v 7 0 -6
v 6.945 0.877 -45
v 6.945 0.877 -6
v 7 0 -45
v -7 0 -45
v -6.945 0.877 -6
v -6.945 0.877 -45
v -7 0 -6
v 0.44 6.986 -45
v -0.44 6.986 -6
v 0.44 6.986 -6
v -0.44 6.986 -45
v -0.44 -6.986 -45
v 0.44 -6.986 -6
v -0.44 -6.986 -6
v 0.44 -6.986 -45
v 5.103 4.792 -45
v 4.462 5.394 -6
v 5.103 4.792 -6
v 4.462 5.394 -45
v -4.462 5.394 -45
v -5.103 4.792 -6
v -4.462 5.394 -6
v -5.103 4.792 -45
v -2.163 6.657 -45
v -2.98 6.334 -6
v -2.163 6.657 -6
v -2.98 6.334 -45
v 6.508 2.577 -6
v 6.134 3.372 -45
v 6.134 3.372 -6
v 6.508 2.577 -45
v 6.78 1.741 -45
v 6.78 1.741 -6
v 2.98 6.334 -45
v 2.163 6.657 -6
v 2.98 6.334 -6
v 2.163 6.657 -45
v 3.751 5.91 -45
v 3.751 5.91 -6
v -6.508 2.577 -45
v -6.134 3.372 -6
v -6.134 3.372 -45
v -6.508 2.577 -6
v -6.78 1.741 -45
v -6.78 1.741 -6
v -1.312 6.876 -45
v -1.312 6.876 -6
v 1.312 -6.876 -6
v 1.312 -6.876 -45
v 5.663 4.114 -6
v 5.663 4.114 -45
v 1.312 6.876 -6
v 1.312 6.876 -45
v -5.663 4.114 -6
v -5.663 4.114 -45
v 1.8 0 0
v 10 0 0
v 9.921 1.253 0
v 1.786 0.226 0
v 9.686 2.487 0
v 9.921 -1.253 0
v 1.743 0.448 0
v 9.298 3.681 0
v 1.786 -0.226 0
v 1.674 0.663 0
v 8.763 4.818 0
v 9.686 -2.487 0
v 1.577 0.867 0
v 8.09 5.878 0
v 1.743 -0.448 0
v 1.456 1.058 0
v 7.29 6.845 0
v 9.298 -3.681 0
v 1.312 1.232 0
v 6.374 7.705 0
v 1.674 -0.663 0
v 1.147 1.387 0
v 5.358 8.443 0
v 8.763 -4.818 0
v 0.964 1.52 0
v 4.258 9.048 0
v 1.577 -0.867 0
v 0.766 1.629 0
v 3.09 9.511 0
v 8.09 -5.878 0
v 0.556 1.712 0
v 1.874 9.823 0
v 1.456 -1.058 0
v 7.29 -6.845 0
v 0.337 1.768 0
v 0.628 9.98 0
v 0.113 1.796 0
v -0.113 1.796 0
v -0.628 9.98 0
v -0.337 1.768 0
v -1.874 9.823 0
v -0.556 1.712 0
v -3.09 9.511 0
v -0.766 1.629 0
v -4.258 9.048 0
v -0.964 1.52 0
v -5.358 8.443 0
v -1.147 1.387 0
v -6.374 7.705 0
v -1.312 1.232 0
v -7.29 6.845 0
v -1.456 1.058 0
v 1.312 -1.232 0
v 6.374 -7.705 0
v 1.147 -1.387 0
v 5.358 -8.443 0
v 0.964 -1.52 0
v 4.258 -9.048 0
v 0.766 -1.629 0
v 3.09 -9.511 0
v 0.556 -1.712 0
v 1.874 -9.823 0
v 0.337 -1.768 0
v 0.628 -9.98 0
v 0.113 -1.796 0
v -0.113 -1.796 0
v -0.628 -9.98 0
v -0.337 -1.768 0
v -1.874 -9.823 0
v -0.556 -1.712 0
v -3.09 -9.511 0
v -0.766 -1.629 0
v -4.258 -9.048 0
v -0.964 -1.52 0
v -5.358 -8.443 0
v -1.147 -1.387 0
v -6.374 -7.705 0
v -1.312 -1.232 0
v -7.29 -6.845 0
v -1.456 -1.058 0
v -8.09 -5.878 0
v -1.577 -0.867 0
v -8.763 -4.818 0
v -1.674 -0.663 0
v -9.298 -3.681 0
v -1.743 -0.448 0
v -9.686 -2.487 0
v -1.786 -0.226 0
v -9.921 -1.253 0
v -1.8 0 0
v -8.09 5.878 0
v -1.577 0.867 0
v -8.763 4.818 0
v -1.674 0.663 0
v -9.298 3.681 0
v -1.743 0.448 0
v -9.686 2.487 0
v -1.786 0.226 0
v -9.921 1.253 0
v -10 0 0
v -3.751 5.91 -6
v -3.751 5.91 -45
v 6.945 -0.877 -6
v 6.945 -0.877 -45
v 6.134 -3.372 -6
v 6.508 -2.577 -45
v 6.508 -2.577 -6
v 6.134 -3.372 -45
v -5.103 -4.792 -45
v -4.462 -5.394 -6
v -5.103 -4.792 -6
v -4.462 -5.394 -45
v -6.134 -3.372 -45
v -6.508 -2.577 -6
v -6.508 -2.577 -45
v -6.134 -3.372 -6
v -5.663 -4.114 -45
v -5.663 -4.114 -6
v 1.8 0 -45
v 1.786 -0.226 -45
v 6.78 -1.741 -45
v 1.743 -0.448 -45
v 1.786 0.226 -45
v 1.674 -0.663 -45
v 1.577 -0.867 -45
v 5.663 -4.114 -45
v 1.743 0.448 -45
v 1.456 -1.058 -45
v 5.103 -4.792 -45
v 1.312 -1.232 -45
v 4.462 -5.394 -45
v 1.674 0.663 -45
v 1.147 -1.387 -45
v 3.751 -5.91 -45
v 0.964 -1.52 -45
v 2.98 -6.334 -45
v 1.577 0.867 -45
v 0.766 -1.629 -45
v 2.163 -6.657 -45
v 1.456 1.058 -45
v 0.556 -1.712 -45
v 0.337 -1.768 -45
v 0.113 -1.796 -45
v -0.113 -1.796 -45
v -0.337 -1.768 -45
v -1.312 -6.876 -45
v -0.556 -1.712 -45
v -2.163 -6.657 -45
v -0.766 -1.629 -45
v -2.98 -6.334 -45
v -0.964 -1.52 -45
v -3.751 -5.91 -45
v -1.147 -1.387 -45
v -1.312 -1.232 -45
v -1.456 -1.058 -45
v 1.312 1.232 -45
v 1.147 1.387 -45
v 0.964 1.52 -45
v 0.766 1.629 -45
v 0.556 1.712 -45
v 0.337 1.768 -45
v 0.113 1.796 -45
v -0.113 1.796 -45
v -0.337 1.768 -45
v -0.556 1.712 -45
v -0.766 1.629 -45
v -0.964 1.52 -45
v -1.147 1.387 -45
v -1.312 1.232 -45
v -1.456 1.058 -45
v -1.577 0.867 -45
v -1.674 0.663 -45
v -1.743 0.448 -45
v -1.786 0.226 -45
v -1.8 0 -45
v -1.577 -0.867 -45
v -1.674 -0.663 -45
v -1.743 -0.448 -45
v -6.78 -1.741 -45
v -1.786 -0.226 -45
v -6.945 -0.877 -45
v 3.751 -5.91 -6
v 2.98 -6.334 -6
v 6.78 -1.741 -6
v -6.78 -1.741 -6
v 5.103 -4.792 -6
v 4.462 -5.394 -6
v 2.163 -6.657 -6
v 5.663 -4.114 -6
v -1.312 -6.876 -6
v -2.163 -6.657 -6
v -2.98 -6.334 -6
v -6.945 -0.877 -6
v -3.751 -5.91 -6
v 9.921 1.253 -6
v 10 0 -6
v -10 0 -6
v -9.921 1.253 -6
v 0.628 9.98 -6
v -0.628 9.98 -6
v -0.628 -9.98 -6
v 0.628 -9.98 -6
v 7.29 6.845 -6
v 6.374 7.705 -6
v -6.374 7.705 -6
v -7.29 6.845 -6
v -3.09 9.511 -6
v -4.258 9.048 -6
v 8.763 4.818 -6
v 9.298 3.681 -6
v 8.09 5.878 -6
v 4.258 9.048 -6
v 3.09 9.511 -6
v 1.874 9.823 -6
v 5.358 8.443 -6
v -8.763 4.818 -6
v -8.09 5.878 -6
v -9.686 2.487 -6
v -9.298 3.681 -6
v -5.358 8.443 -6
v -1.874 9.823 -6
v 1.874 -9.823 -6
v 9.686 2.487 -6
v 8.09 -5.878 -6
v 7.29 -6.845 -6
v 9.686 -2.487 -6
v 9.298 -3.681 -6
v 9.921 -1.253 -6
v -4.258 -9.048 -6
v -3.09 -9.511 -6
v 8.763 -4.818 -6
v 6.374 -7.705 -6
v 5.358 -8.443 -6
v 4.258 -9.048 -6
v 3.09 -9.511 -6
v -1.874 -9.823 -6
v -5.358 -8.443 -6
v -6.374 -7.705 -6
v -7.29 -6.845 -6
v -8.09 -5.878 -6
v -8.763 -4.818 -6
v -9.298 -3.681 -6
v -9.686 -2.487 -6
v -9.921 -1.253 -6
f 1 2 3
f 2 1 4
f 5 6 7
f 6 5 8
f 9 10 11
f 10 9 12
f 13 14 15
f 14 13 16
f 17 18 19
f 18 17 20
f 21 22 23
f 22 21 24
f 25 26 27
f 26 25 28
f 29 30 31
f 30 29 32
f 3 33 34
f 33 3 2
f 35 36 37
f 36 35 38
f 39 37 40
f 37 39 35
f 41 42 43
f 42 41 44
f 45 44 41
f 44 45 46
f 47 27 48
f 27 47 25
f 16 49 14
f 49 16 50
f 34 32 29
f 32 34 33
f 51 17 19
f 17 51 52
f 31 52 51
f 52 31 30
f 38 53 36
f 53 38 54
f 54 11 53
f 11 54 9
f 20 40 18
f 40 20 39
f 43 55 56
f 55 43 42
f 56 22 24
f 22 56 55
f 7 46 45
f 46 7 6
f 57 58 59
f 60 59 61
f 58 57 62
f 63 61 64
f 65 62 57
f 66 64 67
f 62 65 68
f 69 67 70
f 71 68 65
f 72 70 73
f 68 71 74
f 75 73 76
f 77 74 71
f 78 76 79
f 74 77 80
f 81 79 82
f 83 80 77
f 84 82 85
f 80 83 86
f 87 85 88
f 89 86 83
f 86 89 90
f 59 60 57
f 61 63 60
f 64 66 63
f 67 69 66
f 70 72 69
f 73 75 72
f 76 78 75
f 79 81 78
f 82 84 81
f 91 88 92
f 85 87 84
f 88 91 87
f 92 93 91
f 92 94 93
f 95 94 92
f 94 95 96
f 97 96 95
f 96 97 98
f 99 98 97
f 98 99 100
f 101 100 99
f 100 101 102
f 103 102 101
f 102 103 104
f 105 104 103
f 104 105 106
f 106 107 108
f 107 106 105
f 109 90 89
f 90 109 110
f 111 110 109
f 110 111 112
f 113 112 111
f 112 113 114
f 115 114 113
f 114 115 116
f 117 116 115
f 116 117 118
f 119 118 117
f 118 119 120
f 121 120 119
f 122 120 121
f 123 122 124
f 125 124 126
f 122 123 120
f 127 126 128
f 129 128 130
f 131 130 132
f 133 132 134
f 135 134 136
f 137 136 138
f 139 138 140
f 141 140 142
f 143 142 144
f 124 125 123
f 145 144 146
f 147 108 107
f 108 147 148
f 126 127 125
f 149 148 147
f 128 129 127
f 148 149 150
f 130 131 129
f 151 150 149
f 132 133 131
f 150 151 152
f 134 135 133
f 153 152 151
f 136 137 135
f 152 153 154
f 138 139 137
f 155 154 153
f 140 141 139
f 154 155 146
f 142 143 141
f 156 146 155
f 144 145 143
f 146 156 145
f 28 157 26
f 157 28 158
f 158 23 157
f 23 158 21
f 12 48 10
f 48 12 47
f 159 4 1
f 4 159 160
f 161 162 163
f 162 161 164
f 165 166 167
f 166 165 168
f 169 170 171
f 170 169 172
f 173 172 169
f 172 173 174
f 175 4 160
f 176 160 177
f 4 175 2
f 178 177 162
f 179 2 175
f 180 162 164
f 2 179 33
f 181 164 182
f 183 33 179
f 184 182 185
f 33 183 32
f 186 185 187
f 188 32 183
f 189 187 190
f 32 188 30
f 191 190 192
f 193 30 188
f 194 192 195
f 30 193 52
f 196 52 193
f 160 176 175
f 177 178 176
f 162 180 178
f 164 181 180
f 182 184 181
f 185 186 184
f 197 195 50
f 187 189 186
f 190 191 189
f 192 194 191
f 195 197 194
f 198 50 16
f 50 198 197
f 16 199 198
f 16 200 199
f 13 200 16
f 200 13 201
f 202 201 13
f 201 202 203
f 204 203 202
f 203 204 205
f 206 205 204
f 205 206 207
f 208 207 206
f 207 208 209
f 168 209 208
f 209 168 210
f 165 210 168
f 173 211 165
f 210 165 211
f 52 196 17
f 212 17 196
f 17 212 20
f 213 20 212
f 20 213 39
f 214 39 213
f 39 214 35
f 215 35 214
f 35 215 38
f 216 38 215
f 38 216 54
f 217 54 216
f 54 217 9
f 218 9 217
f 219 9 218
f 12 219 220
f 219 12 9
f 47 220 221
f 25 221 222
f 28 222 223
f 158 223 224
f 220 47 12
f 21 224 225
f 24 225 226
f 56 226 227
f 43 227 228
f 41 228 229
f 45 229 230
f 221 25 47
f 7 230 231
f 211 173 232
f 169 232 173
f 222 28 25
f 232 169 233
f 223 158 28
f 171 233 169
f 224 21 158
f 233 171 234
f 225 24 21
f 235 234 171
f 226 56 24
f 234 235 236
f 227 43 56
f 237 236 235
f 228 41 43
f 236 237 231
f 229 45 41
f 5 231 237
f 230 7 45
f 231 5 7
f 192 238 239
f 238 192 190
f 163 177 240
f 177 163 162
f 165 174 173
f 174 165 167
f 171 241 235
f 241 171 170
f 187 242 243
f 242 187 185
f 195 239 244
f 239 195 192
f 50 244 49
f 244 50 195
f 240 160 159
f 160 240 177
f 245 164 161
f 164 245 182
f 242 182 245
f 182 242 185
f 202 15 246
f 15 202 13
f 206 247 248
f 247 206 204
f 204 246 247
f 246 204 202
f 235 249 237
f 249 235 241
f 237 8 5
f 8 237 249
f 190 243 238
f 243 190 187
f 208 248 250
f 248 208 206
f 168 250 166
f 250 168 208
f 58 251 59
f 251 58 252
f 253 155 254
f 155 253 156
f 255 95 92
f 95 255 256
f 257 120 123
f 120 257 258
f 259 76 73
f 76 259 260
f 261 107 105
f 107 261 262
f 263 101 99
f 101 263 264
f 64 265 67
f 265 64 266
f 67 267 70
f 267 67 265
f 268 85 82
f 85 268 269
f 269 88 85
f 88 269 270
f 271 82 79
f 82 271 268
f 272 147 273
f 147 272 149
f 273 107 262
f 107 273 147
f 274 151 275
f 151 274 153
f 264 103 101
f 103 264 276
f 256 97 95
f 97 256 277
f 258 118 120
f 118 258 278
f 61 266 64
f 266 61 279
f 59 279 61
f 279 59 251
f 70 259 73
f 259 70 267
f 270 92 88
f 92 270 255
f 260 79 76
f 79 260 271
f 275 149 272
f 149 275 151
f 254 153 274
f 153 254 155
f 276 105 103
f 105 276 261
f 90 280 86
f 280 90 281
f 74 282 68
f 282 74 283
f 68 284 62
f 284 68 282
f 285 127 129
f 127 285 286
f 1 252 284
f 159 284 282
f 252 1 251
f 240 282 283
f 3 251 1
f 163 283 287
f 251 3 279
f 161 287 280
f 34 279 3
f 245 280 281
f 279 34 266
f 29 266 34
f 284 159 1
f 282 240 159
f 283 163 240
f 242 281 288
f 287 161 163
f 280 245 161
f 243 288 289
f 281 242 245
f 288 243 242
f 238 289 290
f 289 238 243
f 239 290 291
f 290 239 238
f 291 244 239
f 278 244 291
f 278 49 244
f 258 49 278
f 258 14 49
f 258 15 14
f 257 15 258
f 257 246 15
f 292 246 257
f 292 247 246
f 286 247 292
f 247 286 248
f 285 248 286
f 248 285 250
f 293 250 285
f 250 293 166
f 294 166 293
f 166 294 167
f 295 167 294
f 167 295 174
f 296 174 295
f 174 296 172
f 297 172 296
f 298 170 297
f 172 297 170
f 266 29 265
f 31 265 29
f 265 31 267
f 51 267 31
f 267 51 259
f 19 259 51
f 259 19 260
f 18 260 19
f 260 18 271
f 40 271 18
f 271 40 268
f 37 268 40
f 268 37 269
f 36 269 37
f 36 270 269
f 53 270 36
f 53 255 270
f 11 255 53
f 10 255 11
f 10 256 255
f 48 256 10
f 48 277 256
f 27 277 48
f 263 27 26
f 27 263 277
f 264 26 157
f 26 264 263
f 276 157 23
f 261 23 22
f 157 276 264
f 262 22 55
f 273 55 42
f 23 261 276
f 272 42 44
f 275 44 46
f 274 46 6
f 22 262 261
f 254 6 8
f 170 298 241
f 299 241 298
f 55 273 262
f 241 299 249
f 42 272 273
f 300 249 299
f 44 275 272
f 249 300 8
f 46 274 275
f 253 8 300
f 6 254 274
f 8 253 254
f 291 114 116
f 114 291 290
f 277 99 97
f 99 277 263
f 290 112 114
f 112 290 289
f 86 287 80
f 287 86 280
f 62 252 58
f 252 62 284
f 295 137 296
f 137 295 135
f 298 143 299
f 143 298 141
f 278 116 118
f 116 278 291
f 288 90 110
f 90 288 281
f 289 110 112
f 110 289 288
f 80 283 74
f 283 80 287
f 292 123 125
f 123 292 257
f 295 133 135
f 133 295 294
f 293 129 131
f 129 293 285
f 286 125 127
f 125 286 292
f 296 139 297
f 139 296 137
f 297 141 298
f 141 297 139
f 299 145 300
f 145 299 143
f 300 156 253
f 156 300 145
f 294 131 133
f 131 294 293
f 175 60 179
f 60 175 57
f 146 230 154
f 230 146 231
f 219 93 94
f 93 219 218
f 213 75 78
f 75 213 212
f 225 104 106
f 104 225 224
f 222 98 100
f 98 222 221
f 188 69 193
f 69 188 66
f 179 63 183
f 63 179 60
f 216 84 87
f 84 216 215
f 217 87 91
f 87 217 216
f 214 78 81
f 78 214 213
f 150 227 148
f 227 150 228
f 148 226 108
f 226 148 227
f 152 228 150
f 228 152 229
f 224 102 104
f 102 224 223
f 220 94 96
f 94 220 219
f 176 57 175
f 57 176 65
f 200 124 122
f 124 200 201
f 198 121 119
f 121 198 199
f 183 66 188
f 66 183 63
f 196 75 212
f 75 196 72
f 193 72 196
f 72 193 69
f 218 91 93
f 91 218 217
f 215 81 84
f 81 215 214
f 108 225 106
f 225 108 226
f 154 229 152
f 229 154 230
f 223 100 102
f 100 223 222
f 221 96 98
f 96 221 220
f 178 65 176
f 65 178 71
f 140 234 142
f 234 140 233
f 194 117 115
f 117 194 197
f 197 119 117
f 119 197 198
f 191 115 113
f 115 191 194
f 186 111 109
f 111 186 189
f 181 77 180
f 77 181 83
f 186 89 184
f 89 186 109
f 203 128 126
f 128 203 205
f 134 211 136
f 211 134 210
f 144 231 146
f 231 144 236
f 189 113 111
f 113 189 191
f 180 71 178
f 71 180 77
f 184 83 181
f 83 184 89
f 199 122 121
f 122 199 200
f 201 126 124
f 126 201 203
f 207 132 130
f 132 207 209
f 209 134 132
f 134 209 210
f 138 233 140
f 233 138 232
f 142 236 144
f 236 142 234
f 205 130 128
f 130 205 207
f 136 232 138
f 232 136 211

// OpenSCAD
$fn = 50;


difference() {
	union() {
		translate(v = [0, 0, -45.0000000000]) {
			cylinder(h = 45, r = 7.0000000000);
		}
		translate(v = [0, 0, -6.0000000000]) {
			cylinder(h = 6, r = 10.0000000000);
		}
	}
	union() {
		#translate(v = [0, 0, -45]) {
			cylinder(h = 45, r = 1.8000000000);
		}
	}
}
